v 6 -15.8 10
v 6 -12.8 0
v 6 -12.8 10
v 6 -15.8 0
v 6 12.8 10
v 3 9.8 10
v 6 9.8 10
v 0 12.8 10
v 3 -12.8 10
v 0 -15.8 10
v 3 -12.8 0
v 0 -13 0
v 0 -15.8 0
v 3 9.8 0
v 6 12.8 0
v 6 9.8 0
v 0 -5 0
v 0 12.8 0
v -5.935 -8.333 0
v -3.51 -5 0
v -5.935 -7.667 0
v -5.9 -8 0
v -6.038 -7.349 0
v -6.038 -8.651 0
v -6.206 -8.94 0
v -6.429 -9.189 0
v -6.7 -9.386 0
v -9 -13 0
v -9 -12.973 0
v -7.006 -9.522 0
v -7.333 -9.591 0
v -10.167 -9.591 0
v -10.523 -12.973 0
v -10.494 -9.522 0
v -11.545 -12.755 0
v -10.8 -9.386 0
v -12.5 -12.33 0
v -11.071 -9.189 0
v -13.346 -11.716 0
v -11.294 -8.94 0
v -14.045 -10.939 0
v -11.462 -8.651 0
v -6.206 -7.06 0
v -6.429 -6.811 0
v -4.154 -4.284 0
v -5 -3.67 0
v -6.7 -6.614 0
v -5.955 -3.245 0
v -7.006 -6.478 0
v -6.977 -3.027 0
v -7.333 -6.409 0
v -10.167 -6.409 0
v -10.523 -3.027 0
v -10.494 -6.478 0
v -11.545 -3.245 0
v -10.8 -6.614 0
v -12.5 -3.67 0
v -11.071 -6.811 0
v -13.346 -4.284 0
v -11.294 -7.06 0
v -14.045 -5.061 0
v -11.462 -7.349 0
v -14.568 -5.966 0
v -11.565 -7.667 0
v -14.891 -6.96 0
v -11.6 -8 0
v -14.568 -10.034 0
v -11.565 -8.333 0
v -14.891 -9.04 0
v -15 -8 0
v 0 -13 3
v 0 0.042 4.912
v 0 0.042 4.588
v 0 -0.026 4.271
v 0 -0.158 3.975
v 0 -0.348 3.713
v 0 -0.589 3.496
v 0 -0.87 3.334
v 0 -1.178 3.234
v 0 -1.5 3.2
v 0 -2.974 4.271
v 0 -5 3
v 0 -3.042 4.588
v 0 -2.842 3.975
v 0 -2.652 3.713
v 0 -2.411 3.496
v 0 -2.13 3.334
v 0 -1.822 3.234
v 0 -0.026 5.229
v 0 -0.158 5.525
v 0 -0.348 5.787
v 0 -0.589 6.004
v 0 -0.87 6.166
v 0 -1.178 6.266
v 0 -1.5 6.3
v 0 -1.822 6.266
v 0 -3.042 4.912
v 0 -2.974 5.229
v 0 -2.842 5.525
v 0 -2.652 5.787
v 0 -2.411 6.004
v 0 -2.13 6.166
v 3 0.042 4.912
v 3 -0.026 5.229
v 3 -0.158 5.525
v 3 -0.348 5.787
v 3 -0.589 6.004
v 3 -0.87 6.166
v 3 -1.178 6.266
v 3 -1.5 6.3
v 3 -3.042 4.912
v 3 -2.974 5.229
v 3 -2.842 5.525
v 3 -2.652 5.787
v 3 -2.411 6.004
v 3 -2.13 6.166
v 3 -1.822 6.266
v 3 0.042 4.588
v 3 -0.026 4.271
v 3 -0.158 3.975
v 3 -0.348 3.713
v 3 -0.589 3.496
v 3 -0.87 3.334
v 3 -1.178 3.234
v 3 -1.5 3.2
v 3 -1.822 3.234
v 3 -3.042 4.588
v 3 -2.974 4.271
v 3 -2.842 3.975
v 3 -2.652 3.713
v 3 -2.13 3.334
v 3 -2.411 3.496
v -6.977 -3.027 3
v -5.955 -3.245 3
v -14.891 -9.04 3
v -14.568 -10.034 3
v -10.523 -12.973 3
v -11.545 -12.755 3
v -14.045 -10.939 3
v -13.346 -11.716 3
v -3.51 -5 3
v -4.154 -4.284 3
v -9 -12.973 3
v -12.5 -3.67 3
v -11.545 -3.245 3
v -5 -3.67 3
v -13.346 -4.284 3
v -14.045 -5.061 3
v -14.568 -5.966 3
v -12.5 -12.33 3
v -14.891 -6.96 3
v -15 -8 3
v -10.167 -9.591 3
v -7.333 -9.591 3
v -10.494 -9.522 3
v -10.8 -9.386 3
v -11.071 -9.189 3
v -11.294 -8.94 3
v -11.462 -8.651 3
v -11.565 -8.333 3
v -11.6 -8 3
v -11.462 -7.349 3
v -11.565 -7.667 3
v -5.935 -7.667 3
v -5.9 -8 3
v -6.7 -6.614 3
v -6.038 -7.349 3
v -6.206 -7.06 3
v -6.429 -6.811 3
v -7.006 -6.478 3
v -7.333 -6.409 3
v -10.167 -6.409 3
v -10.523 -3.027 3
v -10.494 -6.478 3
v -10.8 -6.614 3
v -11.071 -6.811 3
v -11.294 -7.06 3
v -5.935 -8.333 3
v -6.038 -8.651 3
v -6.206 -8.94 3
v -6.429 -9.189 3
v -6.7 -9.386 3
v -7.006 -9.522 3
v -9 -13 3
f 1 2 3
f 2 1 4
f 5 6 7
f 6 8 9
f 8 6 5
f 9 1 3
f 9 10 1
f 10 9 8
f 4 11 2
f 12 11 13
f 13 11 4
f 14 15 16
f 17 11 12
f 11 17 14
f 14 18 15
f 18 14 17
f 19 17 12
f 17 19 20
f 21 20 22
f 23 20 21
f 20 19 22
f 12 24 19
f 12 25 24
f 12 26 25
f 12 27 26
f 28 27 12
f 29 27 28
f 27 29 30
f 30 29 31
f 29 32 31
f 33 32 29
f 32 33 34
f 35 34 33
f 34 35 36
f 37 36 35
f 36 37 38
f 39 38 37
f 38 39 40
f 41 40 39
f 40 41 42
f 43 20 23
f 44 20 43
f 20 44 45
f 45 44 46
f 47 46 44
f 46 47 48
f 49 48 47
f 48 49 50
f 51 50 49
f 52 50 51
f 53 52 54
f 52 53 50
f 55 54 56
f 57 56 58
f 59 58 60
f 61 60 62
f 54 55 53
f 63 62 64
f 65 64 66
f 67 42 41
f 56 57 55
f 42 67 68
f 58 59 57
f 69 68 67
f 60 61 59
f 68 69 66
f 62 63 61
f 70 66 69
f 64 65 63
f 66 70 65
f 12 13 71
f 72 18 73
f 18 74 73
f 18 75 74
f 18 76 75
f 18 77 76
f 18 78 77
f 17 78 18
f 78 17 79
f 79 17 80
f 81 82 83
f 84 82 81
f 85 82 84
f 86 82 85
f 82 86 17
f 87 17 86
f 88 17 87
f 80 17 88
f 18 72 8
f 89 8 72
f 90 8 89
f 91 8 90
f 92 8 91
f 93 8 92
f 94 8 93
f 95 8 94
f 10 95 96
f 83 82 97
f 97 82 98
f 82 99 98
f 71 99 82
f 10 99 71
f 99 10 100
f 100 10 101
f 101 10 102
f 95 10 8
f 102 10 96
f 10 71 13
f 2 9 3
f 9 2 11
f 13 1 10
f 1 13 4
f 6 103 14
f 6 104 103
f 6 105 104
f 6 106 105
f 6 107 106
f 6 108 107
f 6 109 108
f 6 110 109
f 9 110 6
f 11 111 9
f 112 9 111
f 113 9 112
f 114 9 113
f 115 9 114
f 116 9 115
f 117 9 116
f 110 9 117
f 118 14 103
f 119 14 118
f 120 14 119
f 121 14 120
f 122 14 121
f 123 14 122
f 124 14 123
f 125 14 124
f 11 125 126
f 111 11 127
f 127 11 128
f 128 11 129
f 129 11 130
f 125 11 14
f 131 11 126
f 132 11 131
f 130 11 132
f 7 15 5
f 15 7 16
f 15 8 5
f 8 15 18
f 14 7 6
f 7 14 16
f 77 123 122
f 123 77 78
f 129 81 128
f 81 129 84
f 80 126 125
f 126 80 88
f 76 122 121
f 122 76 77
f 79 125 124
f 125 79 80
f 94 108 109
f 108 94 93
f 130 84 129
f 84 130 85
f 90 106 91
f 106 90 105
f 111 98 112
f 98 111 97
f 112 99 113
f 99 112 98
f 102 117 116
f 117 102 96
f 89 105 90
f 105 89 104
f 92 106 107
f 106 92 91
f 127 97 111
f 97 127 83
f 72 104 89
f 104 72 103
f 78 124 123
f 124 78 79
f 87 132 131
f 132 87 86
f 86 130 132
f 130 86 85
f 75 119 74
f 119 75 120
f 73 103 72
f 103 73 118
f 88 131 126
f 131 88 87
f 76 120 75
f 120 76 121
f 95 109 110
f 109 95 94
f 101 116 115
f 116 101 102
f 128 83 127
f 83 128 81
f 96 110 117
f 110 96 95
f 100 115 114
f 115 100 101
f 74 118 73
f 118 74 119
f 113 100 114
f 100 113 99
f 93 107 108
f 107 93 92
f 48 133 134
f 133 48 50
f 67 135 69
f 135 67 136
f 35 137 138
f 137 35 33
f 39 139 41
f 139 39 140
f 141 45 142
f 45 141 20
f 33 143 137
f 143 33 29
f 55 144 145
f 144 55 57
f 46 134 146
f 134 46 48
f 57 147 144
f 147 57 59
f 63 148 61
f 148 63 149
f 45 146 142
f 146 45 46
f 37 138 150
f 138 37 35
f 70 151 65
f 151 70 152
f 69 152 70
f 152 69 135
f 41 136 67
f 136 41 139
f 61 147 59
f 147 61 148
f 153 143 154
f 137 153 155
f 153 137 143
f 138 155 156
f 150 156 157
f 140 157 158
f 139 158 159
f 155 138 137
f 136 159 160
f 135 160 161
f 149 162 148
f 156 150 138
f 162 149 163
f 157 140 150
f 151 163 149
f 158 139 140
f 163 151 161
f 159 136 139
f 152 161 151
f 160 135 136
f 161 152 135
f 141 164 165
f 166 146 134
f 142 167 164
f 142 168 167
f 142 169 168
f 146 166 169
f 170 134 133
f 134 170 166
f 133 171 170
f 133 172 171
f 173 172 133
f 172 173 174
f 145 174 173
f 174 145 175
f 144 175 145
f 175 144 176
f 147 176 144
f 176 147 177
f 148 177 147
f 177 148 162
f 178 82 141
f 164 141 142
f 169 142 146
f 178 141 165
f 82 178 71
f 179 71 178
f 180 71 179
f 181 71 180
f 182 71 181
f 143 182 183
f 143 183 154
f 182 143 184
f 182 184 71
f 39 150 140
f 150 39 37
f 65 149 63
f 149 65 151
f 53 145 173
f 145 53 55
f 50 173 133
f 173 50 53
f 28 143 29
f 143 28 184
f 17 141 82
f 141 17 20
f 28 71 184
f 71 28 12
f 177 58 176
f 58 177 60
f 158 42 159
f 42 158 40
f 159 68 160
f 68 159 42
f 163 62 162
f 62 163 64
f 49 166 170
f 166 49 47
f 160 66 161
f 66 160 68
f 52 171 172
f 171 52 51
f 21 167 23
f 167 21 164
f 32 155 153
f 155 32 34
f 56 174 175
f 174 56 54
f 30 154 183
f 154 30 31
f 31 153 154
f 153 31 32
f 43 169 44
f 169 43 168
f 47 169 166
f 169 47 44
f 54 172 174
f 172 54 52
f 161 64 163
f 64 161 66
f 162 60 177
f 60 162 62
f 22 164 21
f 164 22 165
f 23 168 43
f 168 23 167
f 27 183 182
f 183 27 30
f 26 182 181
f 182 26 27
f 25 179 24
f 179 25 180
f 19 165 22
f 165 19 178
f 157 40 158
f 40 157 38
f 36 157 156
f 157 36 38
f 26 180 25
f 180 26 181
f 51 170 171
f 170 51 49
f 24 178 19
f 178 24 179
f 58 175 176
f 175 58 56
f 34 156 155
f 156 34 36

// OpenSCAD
/* parameters related to mounting to block */
widY = 22.6;
offX = 4.75;

/* parameters related to mounting to fan */
topOffY = -8;
topOffZ = 9;

$fn=30;

/* block mount */
translate([0,-widY/2-1.5,0]) {
   difference() {
      union() {
         translate([0,-3,0]) cube([6,3,10]);
         translate([0,-0.1,0]) cube([3,widY+0.2,10]);
         translate([0,widY,0]) cube([6,3,10]);
      }
      translate([-1,widY/2,offX]) rotate([0,90,0]) cylinder(d=3.1,h=10);
   }
}

/* fan mount */
difference() {
   union() {
      hull() {
         translate([-topOffZ+1.5, topOffY, 0]) cylinder(r=5,h=3);
         translate([-topOffZ-1, topOffY, 0]) cylinder(r=5,h=3);
      }
      translate([-topOffZ, topOffY-5, 0]) cube([topOffZ, 8,3]);
   }
   hull() {
      translate([-topOffZ+1.5,topOffY,-1]) cylinder(d=3.2,h=10);
      translate([-topOffZ-1,topOffY,-1]) cylinder(d=3.2,h=10);
   }
}
